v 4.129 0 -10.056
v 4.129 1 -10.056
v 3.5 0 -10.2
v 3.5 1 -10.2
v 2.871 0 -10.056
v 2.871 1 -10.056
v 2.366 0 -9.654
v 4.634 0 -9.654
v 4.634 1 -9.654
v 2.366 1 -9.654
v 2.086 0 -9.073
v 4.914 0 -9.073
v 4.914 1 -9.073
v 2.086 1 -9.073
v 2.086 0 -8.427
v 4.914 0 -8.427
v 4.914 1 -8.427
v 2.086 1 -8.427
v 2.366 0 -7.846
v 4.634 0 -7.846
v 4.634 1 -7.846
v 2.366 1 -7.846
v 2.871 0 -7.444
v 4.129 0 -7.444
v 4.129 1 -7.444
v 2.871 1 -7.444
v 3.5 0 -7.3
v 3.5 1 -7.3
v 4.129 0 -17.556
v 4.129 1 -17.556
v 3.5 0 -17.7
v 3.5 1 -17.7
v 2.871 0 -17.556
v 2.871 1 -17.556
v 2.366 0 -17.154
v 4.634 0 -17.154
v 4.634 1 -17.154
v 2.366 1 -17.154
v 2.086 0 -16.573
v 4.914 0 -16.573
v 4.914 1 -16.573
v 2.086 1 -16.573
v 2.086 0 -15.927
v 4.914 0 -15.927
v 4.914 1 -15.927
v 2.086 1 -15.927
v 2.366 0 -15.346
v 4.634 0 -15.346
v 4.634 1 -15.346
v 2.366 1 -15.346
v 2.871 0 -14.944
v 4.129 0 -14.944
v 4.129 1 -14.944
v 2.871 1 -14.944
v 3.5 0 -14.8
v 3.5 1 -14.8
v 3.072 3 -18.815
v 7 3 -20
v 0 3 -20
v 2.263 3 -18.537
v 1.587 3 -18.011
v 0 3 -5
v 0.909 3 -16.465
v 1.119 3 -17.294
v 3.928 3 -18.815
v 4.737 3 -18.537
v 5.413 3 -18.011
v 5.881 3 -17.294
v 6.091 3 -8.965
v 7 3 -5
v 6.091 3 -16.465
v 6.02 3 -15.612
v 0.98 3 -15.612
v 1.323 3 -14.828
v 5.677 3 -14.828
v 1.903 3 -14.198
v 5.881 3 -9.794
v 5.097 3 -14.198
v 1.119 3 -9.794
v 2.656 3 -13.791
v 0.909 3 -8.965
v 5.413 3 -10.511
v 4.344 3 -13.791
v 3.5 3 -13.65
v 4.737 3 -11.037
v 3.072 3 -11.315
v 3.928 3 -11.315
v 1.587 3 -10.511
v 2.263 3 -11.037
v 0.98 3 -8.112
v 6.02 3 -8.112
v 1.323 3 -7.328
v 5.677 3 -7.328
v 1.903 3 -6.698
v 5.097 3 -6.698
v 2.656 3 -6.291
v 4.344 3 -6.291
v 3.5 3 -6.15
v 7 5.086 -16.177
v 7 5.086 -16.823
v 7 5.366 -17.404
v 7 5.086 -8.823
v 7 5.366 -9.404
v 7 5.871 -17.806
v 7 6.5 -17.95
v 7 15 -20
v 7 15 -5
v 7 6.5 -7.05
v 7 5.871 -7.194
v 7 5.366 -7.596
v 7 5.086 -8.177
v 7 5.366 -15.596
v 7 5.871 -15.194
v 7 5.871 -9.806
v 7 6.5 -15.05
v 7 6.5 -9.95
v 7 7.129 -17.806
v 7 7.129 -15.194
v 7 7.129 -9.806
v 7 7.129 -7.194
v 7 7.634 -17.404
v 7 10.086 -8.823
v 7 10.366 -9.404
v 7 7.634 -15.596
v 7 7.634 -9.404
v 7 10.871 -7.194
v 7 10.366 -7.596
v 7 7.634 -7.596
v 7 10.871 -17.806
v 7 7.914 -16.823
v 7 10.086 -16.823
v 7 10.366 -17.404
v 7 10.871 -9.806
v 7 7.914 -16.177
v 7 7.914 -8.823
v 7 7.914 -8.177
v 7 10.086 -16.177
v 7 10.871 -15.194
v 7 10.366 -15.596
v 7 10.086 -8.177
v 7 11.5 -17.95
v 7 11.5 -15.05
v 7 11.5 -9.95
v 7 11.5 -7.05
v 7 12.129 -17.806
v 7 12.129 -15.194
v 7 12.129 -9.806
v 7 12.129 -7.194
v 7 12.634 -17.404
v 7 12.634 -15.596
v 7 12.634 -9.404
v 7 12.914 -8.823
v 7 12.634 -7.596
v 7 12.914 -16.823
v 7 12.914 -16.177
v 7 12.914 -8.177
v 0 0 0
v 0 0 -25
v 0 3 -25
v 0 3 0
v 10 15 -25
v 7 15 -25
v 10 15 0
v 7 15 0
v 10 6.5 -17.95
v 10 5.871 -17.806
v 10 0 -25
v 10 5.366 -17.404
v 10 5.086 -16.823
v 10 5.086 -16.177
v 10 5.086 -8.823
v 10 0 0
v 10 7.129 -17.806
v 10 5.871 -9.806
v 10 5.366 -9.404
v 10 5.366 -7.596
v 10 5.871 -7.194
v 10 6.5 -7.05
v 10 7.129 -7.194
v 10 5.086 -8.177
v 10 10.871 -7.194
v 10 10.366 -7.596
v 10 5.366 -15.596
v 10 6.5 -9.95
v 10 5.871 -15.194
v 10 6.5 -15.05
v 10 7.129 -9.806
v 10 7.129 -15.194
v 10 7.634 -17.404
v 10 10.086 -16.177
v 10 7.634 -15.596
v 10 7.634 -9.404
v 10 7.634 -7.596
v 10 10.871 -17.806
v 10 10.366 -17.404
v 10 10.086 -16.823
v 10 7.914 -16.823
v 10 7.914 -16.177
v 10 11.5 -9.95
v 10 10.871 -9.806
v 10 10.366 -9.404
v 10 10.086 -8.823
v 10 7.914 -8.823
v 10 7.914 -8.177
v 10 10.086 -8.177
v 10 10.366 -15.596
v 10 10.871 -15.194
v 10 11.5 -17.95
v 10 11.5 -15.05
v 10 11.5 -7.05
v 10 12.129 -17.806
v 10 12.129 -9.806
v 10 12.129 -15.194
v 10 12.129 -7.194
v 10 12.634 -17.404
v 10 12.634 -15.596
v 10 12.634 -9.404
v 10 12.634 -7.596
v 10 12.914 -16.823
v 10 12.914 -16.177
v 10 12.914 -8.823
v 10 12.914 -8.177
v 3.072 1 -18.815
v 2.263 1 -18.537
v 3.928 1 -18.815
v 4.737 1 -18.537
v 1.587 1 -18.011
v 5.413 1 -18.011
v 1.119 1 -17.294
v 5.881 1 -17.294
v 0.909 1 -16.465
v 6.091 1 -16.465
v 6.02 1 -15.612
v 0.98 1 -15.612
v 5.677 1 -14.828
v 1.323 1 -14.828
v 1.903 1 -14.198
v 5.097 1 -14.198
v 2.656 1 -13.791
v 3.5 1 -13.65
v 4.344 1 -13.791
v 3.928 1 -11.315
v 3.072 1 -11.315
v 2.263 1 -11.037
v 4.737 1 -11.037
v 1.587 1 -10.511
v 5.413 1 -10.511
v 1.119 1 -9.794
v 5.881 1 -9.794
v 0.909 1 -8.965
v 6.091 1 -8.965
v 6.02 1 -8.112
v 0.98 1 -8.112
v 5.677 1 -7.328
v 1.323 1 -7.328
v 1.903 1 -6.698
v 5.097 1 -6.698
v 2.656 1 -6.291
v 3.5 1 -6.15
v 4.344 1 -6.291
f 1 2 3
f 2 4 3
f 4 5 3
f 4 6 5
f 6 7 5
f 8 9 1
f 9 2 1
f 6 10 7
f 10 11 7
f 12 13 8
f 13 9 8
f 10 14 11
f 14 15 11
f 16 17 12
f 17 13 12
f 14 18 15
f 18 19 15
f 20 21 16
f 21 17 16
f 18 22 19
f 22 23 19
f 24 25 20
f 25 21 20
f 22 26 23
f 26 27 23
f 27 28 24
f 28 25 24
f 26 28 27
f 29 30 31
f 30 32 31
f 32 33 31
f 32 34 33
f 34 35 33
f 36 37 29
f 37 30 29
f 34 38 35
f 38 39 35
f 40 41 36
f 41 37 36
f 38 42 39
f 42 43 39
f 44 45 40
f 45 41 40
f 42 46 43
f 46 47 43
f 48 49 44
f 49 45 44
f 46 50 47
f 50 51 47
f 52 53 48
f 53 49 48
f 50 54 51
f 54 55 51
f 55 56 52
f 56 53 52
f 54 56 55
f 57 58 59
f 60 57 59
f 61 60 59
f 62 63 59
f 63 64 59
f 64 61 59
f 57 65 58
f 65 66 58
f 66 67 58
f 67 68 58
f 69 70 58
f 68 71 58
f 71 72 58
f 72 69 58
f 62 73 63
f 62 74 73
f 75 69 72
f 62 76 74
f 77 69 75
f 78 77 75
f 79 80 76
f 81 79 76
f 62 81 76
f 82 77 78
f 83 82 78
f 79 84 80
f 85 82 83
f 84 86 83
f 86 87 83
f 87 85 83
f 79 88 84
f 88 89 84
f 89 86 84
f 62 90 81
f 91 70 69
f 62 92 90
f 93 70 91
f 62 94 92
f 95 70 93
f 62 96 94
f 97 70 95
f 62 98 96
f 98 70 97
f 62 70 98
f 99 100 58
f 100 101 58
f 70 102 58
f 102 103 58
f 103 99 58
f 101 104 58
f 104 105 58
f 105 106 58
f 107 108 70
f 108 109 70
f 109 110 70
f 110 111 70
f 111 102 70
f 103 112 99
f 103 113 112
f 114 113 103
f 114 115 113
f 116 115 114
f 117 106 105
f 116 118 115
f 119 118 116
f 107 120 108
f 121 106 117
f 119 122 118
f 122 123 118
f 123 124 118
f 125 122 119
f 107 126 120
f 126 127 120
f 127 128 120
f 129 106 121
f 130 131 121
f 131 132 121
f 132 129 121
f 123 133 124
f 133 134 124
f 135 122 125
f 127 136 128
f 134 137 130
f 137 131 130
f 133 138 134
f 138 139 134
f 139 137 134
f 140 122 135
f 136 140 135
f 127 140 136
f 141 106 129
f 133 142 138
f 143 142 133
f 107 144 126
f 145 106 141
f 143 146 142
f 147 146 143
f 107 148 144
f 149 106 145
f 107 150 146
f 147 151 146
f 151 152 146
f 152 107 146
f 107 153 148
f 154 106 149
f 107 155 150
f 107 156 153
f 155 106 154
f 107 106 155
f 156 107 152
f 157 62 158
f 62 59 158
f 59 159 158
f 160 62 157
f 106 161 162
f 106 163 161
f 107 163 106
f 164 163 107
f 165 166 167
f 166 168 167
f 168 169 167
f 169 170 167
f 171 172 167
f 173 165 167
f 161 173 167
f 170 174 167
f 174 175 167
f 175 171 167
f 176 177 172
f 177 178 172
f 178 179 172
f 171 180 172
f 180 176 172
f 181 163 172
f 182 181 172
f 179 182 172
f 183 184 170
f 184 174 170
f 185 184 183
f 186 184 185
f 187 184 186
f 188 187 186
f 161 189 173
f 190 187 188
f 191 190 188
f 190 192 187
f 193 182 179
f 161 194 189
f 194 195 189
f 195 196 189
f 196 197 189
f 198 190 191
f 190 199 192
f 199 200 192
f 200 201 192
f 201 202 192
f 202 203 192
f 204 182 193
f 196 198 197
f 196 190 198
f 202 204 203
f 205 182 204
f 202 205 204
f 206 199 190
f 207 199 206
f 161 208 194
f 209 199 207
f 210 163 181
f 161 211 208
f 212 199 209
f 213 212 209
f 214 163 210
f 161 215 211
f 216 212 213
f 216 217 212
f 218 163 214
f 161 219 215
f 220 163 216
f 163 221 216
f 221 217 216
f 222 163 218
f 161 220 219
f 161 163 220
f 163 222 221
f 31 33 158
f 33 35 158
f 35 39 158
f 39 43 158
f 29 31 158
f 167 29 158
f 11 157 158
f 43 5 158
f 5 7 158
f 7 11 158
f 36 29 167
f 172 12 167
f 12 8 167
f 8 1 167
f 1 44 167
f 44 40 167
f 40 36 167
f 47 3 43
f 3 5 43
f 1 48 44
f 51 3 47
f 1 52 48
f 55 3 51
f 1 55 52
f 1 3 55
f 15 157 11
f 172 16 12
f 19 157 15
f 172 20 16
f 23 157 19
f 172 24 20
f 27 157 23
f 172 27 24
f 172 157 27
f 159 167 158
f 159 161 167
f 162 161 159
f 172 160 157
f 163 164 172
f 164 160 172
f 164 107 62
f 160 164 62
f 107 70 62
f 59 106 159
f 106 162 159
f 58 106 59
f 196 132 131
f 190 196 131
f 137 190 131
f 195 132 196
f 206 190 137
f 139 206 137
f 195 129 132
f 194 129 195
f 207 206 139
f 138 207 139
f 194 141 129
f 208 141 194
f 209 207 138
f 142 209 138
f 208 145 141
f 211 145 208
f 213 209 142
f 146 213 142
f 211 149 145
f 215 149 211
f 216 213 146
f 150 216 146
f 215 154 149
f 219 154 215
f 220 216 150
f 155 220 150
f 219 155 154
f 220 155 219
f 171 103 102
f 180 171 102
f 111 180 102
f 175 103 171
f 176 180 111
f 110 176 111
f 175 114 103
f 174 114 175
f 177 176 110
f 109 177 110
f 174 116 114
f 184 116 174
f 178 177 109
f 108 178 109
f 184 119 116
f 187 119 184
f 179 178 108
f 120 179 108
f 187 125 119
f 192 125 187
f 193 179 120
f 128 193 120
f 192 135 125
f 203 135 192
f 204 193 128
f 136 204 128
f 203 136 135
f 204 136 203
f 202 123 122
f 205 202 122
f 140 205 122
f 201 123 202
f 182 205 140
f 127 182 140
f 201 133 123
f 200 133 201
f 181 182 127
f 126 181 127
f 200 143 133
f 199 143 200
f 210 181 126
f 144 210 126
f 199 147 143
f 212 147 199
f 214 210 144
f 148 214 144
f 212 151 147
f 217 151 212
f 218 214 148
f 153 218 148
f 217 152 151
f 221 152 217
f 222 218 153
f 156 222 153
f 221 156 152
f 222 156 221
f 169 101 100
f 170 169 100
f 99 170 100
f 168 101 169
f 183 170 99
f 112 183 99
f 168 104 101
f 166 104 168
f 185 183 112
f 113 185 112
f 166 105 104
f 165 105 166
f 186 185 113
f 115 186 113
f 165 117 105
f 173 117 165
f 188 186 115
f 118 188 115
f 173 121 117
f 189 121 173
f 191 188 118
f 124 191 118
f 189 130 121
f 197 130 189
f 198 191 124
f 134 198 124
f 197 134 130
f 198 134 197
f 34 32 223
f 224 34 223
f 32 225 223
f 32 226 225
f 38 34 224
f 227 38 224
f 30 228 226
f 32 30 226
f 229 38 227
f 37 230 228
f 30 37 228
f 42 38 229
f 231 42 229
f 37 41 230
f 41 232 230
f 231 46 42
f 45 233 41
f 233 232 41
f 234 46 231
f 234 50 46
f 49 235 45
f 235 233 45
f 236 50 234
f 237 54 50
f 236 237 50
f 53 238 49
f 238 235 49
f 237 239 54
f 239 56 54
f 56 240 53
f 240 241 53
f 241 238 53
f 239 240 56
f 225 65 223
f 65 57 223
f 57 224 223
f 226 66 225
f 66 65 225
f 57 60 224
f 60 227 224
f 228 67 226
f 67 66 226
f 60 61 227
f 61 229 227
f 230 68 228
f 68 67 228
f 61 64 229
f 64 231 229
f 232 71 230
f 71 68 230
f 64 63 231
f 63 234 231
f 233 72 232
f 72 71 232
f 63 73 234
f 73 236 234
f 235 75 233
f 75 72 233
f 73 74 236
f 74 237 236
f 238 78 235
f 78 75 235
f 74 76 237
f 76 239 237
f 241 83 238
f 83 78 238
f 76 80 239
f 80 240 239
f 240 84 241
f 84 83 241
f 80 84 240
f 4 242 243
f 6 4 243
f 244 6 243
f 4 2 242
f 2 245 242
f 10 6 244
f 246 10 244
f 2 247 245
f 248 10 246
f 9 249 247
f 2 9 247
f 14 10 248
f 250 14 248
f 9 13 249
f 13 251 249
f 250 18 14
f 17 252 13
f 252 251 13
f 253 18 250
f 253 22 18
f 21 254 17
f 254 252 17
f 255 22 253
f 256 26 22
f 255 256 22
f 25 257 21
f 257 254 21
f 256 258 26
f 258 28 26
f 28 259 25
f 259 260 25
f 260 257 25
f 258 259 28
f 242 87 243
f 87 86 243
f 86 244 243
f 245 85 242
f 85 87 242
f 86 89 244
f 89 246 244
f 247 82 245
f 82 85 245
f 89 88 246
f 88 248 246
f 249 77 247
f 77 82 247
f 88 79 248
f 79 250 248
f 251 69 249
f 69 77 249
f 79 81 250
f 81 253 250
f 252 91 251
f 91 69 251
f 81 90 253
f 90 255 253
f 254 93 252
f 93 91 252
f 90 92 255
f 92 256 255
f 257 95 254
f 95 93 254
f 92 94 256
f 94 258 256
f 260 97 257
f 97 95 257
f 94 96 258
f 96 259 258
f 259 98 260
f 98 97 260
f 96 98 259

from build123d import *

# Parameters (mm, degrees)
EXTRUDE_2_DEPTH     = 25
EXTRUDE_3_DEPTH     = 5
EXTRUDE_5_DEPTH     = 5
SKETCH_8_R          = 1.45
CUT_EXTRUDE_3_DEPTH = 300
SKETCH_9_R          = 1.45
CUT_EXTRUDE_4_DEPTH = 300
SKETCH_10_R         = 2.6
CUT_EXTRUDE_5_DEPTH = 2


with BuildPart() as part:
    # 草图3 → 凸台-拉伸2 (new body)
    with BuildSketch(Plane.XY):
        Polygon((0, 0), (10, 0), (10, 15), (7, 15), (7, 3), (0, 3), align=None)
    extrude(amount=-EXTRUDE_2_DEPTH)

    # 草图4 → 凸台-拉伸3 (add)
    with BuildSketch(Plane.XY):
        Polygon((7, 15), (0, 3), (7, 3), align=None)
    extrude(amount=-EXTRUDE_3_DEPTH)

    # 草图5 → 凸台-拉伸5 (add)
    with BuildSketch(Plane(origin=(0, 0, -25), x_dir=(-1, 0, 0), z_dir=(0, 0, -1))):
        Polygon((-7, 15), (0, 3), (-7, 3), align=None)
    extrude(amount=-EXTRUDE_5_DEPTH)

    # 草图8 → 切除-拉伸3 (cut)
    with BuildSketch(Plane.ZY.offset(-7)):
        with Locations((-16.5, 11.5)):
            Circle(SKETCH_8_R)
        with Locations((-16.5, 6.5)):
            Circle(SKETCH_8_R)
        with Locations((-8.5, 6.5)):
            Circle(SKETCH_8_R)
        with Locations((-8.5, 11.5)):
            Circle(SKETCH_8_R)
    extrude(amount=-CUT_EXTRUDE_3_DEPTH, mode=Mode.SUBTRACT)

    # 草图9 → 切除-拉伸4 (cut)
    with BuildSketch(Plane(origin=(0, 3, 0), x_dir=(1, 0, 0), z_dir=(0, 1, 0))):
        with Locations(Location((3.5, 16.25, 0), (0, 0, 270))):
            Circle(SKETCH_9_R)
        with Locations(Location((3.5, 8.75, 0), (0, 0, 270))):
            Circle(SKETCH_9_R)
    extrude(amount=-CUT_EXTRUDE_4_DEPTH, mode=Mode.SUBTRACT)

    # 草图10 → 切除-拉伸5 (cut)
    with BuildSketch(Plane(origin=(0, 3, 0), x_dir=(1, 0, 0), z_dir=(0, 1, 0))):
        with Locations(Location((3.5, 16.25, 0), (0, 0, 270))):
            Circle(SKETCH_10_R)
        with Locations(Location((3.5, 8.75, 0), (0, 0, 270))):
            Circle(SKETCH_10_R)
    extrude(amount=-CUT_EXTRUDE_5_DEPTH, mode=Mode.SUBTRACT)


solid = part.part
